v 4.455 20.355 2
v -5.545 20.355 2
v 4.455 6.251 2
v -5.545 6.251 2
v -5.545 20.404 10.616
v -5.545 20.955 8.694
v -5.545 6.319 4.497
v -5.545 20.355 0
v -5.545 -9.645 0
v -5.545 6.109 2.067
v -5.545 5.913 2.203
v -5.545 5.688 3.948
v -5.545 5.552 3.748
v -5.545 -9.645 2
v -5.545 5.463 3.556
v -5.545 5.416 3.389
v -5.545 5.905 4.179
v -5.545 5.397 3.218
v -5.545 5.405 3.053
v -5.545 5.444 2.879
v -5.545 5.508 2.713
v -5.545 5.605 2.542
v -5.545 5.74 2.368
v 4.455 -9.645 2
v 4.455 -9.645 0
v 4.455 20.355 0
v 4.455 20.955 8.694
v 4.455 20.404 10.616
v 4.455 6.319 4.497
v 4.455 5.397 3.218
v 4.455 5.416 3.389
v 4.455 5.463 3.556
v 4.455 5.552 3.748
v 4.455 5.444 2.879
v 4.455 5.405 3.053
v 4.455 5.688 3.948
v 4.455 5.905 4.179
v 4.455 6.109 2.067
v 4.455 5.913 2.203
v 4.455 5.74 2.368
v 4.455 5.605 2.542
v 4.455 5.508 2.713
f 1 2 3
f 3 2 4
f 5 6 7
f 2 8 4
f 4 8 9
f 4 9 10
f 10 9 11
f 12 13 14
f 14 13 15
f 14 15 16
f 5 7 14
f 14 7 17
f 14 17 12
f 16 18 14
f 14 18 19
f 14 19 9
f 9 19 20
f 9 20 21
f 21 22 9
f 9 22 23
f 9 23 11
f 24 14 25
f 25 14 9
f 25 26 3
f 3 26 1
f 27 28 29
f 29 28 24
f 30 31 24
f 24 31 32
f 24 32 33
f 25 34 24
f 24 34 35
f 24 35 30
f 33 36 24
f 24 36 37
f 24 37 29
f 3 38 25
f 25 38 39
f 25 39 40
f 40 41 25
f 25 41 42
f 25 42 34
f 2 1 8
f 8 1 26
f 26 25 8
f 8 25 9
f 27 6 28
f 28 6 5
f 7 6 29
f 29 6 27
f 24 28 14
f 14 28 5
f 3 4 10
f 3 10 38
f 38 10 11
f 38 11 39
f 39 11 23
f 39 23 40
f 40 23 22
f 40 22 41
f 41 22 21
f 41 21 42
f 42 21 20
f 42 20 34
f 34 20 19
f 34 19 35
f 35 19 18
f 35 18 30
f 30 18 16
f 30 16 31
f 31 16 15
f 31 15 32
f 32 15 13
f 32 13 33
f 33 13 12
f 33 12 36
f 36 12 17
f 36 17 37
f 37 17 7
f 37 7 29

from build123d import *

# Parameters (mm, degrees)
SKETCH1_W           = 10
SKETCH1_H           = 30
BOSS_EXTRUDE1_DEPTH = 2
SKETCH2_W           = 10
SKETCH2_H           = 31.258977403
BOSS_EXTRUDE2_DEPTH = 2
BOSS_EXTRUDE3_DEPTH = 10


with BuildPart() as part:
    # Sketch1 → Boss-Extrude1 (new body)
    with BuildSketch(Plane.XY):
        with Locations((-0.545023697, 5.355450237)):
            Rectangle(SKETCH1_W, SKETCH1_H)
    extrude(amount=BOSS_EXTRUDE1_DEPTH)

    # Sketch2 → Boss-Extrude2 (add)
    with BuildSketch(Plane(origin=(0, -1.262673113, 4.403464453), x_dir=(1, 0, 0), z_dir=(0, -0.275637356, 0.961261696))):
        with Locations((-0.545023697, 6.909827152)):
            Rectangle(SKETCH2_W, SKETCH2_H)
    extrude(amount=-BOSS_EXTRUDE2_DEPTH)

    # Sketch3 → Boss-Extrude3 (add)
    with BuildSketch(Plane.ZY.offset(5.545023697)):
        with BuildLine():
            Line((2, 6.250675975), (2, -2.388639206))
            Line((2, -2.388639206), (4.496805616, 6.318756763))
            add(Edge.make_bspline(
                [(2, 6.250675975), (2.210821092, 5.681941721), (3.390467427, 4.618454358), (4.496805616, 6.318756763)],
                knots=[0, 0, 0, 0, 1, 1, 1, 1], degree=3))
        make_face()
    extrude(amount=-BOSS_EXTRUDE3_DEPTH)


solid = part.part
